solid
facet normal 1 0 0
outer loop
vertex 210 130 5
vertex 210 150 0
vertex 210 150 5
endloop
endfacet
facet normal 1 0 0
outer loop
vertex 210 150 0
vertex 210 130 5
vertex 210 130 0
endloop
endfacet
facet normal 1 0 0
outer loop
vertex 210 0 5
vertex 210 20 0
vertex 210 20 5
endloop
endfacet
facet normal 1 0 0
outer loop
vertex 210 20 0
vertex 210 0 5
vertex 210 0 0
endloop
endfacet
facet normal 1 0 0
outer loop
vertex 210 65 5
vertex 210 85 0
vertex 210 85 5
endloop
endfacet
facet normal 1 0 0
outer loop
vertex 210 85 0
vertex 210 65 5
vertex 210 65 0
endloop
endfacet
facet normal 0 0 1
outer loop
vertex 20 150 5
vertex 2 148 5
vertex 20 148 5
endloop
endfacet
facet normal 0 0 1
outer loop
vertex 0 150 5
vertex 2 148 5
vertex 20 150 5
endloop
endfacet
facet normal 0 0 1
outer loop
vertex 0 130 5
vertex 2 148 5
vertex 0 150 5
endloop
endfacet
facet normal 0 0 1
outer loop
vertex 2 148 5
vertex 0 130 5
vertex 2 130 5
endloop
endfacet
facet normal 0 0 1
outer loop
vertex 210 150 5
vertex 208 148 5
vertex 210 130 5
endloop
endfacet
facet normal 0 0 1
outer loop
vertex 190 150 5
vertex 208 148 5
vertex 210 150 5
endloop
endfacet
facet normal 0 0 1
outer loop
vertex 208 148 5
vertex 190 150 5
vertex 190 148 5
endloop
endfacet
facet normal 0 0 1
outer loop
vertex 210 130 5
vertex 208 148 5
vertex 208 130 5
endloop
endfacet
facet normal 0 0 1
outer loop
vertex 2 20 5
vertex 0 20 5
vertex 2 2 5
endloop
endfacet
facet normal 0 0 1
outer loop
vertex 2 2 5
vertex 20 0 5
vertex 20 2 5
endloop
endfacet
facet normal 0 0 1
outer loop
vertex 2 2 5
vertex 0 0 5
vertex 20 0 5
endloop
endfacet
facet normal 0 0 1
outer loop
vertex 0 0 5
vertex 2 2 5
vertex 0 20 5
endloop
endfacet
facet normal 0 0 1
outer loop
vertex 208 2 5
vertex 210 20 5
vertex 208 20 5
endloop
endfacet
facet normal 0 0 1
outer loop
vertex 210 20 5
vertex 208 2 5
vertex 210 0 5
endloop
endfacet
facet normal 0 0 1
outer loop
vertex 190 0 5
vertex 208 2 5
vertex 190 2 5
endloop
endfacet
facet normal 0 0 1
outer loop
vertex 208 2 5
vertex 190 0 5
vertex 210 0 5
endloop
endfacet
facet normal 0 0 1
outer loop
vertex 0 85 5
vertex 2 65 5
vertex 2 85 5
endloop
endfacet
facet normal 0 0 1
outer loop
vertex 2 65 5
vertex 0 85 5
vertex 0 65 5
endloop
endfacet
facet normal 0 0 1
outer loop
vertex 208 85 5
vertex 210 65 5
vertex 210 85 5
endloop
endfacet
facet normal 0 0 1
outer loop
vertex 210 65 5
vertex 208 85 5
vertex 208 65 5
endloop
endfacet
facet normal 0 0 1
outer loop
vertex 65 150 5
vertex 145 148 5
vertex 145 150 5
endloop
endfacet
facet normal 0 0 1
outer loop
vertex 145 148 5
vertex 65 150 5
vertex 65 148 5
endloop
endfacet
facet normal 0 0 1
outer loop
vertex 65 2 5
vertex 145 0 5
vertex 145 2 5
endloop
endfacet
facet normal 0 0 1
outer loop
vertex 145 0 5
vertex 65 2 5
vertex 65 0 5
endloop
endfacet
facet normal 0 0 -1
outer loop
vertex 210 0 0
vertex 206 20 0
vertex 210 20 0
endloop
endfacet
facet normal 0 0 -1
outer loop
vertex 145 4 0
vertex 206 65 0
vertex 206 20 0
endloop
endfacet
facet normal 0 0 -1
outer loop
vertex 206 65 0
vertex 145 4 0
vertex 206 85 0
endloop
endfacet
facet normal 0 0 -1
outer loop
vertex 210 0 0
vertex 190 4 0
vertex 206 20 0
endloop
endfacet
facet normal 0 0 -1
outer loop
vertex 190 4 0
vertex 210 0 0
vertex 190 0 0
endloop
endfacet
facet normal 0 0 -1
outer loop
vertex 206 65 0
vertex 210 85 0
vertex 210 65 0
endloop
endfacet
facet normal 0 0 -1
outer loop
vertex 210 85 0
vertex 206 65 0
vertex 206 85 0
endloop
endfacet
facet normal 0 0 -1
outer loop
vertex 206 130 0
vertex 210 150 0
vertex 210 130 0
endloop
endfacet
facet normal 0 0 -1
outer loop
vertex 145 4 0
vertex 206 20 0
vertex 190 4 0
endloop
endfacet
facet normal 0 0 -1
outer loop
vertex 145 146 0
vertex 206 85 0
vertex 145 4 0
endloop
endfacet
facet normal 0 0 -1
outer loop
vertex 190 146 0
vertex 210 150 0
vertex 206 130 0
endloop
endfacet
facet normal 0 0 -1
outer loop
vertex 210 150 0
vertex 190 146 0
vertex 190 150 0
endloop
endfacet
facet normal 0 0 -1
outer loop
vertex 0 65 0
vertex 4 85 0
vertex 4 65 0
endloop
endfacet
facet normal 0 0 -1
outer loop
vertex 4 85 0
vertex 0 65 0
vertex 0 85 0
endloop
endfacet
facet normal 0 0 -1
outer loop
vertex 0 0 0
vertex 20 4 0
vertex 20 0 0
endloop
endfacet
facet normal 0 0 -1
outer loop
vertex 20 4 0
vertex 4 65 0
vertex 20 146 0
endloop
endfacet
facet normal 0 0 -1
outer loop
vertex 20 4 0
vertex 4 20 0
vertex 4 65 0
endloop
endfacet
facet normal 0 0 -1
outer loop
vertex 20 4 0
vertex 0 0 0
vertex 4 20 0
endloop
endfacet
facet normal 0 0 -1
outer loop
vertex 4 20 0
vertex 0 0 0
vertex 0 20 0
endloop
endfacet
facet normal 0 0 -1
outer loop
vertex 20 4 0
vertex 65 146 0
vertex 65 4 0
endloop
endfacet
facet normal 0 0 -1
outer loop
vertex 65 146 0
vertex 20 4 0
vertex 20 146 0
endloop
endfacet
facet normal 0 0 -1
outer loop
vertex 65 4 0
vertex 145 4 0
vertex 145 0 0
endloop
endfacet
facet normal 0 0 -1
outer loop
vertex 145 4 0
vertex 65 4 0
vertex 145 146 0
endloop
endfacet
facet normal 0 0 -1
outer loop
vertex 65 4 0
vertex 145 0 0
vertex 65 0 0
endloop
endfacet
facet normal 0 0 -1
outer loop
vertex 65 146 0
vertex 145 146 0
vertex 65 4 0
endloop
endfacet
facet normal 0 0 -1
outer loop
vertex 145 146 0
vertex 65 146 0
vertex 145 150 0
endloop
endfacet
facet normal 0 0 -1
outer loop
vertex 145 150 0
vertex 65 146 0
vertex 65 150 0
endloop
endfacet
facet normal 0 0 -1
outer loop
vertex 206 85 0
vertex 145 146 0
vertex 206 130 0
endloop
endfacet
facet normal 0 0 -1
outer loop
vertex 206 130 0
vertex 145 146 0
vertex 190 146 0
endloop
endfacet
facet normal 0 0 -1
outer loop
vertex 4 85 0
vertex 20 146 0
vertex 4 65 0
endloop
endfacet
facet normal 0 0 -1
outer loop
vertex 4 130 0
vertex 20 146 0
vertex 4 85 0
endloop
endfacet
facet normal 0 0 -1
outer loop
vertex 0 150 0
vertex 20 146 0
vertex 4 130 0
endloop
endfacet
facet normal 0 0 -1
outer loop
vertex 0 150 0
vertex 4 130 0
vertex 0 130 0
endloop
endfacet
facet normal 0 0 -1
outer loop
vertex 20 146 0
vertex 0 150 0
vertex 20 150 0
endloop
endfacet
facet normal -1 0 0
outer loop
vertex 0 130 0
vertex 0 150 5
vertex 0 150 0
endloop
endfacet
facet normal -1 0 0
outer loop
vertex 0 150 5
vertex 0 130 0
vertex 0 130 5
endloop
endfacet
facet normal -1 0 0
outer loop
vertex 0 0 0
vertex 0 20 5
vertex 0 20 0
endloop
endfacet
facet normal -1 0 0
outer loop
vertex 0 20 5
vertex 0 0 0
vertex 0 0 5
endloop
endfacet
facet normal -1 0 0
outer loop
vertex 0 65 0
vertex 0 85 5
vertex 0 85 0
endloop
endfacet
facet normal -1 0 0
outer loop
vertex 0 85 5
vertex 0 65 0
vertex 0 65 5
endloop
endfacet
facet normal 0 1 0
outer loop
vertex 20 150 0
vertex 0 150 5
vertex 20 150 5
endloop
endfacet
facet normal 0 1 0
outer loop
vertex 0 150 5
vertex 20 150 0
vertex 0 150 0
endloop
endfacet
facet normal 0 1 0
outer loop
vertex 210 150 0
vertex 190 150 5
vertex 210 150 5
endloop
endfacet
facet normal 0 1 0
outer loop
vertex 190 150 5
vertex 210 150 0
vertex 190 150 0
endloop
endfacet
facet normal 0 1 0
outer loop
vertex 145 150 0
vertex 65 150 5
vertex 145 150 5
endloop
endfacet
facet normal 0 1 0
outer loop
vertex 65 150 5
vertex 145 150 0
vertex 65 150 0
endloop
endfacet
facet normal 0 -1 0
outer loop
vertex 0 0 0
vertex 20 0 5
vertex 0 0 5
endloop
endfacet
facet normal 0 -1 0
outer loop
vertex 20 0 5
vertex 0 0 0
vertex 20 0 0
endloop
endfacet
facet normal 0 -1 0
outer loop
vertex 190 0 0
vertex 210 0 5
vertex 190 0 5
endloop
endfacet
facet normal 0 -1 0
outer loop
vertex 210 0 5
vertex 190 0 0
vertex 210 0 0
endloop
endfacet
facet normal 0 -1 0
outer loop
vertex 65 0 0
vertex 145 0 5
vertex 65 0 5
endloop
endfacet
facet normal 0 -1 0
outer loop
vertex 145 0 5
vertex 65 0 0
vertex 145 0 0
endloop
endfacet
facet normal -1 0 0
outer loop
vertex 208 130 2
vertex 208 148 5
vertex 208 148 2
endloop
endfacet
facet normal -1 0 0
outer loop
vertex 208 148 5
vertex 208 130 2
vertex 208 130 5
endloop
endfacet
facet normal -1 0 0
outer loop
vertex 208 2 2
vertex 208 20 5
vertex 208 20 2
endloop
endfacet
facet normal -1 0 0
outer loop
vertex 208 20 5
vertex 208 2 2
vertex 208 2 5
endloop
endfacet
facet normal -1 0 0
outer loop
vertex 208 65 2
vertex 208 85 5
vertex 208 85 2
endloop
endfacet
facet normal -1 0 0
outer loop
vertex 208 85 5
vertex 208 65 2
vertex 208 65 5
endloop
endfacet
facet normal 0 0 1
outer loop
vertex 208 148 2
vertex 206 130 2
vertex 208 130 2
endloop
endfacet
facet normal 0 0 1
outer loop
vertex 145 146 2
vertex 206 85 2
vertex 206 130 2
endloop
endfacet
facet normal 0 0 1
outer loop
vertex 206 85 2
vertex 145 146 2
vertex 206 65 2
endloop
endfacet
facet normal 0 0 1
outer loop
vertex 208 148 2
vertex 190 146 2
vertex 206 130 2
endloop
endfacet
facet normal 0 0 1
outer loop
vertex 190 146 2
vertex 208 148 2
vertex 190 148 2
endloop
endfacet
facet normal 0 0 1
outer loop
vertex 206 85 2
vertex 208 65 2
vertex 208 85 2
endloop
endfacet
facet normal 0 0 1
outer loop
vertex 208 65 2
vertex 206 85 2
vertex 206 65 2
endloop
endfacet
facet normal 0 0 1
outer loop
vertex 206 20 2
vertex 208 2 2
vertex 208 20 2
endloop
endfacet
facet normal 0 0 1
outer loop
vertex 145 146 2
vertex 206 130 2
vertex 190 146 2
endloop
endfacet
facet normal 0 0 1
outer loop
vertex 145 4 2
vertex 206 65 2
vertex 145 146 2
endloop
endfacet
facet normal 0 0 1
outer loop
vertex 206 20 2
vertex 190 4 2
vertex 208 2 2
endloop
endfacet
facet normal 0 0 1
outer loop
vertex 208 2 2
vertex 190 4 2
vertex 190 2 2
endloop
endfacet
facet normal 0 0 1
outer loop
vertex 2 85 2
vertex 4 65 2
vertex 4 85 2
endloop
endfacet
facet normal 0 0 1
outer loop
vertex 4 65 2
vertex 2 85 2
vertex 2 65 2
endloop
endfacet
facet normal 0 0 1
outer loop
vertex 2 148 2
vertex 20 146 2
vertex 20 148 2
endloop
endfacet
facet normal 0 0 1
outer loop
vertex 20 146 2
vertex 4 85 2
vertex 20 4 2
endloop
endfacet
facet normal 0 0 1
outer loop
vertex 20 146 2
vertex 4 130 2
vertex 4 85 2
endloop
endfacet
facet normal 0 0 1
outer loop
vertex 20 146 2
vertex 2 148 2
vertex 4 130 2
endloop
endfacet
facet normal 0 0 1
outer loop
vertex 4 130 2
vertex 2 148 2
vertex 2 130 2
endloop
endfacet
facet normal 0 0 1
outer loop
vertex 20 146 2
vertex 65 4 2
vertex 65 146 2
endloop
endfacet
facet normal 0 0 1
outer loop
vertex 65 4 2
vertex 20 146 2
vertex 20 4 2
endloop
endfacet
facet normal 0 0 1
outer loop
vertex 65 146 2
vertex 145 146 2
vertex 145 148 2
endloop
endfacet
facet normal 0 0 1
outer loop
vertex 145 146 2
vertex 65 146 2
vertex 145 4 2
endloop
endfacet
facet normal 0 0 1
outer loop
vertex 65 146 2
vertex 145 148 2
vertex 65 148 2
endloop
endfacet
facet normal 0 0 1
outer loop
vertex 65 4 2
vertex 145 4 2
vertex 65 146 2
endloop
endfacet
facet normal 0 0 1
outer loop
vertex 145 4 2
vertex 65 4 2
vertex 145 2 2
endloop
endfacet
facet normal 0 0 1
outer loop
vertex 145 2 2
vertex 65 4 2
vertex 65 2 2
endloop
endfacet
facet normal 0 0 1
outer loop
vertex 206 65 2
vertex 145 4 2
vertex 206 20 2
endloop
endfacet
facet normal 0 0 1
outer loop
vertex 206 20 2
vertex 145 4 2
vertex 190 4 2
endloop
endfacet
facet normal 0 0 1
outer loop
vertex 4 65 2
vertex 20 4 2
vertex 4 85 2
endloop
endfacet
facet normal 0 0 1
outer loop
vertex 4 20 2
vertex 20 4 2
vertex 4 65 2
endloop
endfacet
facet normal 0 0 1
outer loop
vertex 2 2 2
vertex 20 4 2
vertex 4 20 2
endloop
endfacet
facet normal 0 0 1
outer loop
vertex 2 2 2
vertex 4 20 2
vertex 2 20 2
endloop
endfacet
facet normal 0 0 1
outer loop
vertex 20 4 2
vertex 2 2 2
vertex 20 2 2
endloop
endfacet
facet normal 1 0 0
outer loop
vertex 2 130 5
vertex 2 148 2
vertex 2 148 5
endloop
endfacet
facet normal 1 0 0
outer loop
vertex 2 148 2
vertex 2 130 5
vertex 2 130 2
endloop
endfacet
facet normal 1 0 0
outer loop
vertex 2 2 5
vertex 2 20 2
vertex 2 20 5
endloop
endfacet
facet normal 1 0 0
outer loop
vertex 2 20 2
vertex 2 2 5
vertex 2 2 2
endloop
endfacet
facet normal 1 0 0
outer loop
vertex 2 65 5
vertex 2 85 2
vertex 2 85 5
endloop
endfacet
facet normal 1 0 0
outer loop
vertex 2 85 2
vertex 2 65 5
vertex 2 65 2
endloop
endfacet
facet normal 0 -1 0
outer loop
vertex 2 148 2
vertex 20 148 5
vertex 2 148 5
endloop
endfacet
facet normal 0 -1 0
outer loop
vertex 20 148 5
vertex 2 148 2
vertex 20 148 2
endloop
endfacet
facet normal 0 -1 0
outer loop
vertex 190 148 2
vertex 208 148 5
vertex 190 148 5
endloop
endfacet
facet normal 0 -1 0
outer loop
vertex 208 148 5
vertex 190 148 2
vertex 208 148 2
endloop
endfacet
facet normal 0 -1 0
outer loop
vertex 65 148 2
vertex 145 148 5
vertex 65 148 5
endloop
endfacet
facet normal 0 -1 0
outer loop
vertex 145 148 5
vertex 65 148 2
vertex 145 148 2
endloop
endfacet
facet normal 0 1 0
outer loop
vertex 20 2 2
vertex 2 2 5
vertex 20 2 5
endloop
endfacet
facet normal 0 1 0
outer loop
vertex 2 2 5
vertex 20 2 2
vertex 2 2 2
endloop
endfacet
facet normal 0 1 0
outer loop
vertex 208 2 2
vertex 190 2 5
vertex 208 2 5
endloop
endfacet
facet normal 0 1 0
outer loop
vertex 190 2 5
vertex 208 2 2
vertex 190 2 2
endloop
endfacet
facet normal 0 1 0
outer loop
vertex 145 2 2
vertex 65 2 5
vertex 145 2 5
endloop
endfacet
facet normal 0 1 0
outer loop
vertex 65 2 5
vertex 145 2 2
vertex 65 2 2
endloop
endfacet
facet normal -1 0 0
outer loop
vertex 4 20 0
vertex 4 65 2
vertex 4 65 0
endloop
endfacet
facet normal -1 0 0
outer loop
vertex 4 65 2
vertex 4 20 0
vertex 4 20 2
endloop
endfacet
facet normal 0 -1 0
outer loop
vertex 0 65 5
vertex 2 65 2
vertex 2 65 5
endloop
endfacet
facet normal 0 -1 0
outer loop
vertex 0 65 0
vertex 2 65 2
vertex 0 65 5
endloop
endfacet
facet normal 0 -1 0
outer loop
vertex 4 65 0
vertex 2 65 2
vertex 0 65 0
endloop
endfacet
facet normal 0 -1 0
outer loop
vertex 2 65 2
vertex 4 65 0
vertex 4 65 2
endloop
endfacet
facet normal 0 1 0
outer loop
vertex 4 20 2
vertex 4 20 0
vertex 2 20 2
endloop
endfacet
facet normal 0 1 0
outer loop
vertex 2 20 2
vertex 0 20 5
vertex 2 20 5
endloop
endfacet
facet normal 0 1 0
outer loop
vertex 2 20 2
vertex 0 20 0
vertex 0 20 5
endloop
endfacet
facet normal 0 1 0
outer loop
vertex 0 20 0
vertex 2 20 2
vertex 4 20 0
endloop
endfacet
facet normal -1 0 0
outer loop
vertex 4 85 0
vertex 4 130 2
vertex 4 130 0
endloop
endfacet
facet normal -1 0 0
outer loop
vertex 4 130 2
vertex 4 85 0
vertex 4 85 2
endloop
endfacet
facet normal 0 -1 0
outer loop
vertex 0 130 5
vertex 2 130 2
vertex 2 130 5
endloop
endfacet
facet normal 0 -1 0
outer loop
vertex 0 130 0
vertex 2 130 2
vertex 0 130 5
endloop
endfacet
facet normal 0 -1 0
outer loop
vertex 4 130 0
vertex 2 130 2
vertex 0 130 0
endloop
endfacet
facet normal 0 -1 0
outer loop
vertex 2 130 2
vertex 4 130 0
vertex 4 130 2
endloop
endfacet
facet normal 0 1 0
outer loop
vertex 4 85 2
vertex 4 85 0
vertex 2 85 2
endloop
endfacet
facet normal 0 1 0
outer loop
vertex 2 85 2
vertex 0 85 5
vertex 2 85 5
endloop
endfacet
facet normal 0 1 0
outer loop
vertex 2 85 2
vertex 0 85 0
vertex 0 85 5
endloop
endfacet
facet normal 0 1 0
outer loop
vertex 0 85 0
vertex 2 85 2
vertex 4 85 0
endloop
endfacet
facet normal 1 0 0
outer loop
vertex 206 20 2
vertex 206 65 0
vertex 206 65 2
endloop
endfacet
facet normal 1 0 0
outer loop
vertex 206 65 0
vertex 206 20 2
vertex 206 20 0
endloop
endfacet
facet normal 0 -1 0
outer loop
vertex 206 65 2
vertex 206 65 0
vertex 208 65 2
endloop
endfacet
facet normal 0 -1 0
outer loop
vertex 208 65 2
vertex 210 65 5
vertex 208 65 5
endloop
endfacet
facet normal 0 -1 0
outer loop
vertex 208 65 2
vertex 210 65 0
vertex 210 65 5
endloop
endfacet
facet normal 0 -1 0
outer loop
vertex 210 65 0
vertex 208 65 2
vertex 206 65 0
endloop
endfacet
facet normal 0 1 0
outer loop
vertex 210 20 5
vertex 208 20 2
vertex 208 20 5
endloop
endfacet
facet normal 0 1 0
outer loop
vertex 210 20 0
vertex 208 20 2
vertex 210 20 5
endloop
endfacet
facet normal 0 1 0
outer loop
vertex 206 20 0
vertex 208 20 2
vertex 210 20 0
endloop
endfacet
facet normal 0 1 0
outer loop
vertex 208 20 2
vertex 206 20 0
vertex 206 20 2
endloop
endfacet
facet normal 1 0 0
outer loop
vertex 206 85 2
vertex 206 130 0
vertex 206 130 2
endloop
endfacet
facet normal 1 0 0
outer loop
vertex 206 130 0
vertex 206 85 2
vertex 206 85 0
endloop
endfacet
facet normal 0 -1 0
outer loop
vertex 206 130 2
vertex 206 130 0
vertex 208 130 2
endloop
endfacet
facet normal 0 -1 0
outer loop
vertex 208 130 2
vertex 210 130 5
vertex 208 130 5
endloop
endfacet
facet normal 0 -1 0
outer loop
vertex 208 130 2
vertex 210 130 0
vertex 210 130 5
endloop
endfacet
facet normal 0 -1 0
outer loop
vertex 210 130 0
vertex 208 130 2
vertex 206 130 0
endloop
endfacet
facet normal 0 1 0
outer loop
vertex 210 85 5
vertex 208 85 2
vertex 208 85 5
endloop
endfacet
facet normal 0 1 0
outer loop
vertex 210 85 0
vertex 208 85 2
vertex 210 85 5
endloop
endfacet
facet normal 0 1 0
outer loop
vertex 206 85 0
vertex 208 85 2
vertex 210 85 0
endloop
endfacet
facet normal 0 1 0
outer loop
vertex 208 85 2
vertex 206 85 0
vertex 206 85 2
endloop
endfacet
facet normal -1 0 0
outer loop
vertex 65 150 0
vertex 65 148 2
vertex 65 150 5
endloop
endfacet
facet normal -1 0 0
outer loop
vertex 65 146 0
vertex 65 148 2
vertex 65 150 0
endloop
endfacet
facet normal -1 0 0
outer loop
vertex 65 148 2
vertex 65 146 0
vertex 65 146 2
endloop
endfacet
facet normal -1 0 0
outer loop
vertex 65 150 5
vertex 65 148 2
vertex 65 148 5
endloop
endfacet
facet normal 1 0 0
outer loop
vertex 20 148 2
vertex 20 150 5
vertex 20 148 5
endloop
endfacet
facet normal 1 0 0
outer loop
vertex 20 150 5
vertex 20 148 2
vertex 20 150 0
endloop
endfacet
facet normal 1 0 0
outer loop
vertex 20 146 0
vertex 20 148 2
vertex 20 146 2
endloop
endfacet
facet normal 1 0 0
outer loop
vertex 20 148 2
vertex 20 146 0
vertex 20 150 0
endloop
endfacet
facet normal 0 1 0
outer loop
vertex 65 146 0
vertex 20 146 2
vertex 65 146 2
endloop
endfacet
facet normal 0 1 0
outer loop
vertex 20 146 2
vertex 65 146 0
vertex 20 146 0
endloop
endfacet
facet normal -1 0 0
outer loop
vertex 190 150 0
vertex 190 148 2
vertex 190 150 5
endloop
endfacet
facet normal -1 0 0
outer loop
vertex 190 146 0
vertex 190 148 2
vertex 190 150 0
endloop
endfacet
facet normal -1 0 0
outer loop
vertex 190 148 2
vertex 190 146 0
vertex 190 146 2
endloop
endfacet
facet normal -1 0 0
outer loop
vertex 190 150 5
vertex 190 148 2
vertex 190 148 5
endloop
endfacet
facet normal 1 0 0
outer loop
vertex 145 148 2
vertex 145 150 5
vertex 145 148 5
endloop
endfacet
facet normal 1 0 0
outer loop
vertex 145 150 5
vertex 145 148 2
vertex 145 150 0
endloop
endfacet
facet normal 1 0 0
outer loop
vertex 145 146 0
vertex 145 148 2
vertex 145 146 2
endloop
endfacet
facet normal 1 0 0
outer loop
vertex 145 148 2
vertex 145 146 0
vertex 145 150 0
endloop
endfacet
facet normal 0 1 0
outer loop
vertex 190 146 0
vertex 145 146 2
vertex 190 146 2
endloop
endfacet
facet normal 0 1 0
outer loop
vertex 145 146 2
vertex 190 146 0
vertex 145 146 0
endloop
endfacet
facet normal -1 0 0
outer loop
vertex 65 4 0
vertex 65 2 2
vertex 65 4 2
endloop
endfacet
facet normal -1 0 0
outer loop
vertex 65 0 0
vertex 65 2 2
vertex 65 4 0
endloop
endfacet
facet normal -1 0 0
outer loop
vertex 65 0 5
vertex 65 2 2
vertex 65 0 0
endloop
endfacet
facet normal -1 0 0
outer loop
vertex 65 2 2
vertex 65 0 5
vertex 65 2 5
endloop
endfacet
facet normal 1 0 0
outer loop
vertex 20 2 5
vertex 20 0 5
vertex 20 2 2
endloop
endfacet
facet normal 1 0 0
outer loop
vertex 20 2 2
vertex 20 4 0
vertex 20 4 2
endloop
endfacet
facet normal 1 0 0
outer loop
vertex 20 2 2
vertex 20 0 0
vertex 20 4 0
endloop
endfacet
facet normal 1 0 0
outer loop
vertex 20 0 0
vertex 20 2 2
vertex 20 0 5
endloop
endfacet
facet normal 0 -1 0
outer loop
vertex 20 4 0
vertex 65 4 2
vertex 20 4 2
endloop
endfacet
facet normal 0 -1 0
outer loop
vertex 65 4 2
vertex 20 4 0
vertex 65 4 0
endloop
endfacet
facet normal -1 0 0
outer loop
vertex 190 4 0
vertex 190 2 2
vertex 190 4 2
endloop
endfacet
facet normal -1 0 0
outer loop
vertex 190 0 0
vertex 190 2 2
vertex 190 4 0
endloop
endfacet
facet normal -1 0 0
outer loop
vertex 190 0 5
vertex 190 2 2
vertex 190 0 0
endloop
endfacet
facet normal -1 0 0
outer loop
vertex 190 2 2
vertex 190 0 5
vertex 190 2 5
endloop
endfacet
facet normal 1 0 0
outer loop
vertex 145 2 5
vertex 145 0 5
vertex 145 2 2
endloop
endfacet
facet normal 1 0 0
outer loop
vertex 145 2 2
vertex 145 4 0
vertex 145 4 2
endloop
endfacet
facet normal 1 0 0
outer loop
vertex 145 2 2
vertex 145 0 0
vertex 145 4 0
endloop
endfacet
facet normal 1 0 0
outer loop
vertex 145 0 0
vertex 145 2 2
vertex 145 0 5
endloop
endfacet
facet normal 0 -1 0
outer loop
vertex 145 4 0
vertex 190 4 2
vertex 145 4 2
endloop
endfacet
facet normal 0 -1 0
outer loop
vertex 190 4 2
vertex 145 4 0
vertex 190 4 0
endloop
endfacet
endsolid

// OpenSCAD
/**

Generic enclosure for van stuff
@idnorton

Licenced as Creative Commons Attribution Non Commercial 3.0
See https://creativecommons.org/licenses/by-nc/3.0/

Specifically you may not sell the design or products using the design.
You're welcome to use the design to build things for your own use :)

Print settings: 0.20mm SPEED
Supports: None
Infill: 20%
Perimiters: 3

**/

wall_thickness = 2;
wall_x = 210; // This needs to be an arg
wall_y = 150;
wall_z = 5;

gaps = 45;
corner = 20;
insert = 2;
support = 5;



difference() {
    // Exterior body
    cube([wall_x, wall_y, wall_z]);
    
    // Hollow out the main body
    translate([
      wall_thickness,
      wall_thickness,
      wall_thickness
    ]) {
      cube([
        wall_x - (2 * wall_thickness),
        wall_y - (2 * wall_thickness),
        wall_z - wall_thickness]);  
    }

    // Left side bottom gap
    translate([0, corner, 0]) {
        vgap();
    }

    // Left side top gap
    translate([0, wall_y - gaps - corner, 0]) {
        vgap();
    }
    
    // Right side bottom gap
    translate([
        wall_x - insert - wall_thickness,
        corner,
        0
    ]) {
        vgap();
    }
    
    // Right side top gap
    translate([
        wall_x - insert - wall_thickness,
        wall_y - gaps - corner,
        0
    ]) {
        vgap();
    }
    
    // Top side left gap
    translate([
        corner,
        wall_y - insert - wall_thickness,
        0
    ]) {
        hgap();
    }
    
    // Top side right gap
    translate([
        wall_x - gaps - corner,
        wall_y - insert - wall_thickness,
        0
    ]) {
        hgap();
    }
    
    // Bottom side left gap
    translate([corner, 0, 0]) {
        hgap();
    }
    
    // Bottom side right gap
    translate([wall_x - gaps - corner, 0, 0]) {
        hgap();
    }
}

//translate([2*wall_thickness, wall_y - 7, 0]) {
    //cube([support, support, wall_z]);
    //prism(5, 5, wall_z);
    //prism(2, 5, wall_z);
//}


module hgap() {
    cube([gaps, insert + wall_thickness, wall_z]);
}

module vgap() {
    cube([insert + wall_thickness, gaps, wall_z]);
}




module prism(l, w, h) {
    polyhedron(//pt 0        1        2        3        4        5
        points=[[0,0,0], [l,0,0], [l,w,0], [0,w,0], [0,w,h], [l,w,h]],
        faces=[[0,1,2,3],[5,4,3,2],[0,4,5,1],[0,3,4],[5,2,1]]
    );
      
    // preview unfolded (do not include in your function
    z = 0.08;
    separation = 2;
    border = .2;
    
    translate([0,w+separation,0])
        cube([l,w,z]);
    
    translate([0,w+separation+w+border,0])
        cube([l,h,z]);
    
    translate([0,w+separation+w+border+h+border,0])
        cube([l,sqrt(w*w+h*h),z]);
    
    translate([l+border,w+separation,0])
        polyhedron(//pt 0       1       2        3       4       5
            points=[[0,0,0],[h,w,0],[0,w,0], [0,0,z],[h,w,z],[0,w,z]],
            faces=[[0,1,2], [3,5,4], [0,3,4,1], [1,4,5,2], [2,5,3,0]]
        );
        
    translate([0-border,w+separation,0])
        polyhedron(//pt 0       1         2        3       4         5
            points=[[0,0,0],[0-h,w,0],[0,w,0], [0,0,z],[0-h,w,z],[0,w,z]],
            faces=[[1,0,2],[5,3,4],[0,1,4,3],[1,2,5,4],[2,0,3,5]]
        );
}
